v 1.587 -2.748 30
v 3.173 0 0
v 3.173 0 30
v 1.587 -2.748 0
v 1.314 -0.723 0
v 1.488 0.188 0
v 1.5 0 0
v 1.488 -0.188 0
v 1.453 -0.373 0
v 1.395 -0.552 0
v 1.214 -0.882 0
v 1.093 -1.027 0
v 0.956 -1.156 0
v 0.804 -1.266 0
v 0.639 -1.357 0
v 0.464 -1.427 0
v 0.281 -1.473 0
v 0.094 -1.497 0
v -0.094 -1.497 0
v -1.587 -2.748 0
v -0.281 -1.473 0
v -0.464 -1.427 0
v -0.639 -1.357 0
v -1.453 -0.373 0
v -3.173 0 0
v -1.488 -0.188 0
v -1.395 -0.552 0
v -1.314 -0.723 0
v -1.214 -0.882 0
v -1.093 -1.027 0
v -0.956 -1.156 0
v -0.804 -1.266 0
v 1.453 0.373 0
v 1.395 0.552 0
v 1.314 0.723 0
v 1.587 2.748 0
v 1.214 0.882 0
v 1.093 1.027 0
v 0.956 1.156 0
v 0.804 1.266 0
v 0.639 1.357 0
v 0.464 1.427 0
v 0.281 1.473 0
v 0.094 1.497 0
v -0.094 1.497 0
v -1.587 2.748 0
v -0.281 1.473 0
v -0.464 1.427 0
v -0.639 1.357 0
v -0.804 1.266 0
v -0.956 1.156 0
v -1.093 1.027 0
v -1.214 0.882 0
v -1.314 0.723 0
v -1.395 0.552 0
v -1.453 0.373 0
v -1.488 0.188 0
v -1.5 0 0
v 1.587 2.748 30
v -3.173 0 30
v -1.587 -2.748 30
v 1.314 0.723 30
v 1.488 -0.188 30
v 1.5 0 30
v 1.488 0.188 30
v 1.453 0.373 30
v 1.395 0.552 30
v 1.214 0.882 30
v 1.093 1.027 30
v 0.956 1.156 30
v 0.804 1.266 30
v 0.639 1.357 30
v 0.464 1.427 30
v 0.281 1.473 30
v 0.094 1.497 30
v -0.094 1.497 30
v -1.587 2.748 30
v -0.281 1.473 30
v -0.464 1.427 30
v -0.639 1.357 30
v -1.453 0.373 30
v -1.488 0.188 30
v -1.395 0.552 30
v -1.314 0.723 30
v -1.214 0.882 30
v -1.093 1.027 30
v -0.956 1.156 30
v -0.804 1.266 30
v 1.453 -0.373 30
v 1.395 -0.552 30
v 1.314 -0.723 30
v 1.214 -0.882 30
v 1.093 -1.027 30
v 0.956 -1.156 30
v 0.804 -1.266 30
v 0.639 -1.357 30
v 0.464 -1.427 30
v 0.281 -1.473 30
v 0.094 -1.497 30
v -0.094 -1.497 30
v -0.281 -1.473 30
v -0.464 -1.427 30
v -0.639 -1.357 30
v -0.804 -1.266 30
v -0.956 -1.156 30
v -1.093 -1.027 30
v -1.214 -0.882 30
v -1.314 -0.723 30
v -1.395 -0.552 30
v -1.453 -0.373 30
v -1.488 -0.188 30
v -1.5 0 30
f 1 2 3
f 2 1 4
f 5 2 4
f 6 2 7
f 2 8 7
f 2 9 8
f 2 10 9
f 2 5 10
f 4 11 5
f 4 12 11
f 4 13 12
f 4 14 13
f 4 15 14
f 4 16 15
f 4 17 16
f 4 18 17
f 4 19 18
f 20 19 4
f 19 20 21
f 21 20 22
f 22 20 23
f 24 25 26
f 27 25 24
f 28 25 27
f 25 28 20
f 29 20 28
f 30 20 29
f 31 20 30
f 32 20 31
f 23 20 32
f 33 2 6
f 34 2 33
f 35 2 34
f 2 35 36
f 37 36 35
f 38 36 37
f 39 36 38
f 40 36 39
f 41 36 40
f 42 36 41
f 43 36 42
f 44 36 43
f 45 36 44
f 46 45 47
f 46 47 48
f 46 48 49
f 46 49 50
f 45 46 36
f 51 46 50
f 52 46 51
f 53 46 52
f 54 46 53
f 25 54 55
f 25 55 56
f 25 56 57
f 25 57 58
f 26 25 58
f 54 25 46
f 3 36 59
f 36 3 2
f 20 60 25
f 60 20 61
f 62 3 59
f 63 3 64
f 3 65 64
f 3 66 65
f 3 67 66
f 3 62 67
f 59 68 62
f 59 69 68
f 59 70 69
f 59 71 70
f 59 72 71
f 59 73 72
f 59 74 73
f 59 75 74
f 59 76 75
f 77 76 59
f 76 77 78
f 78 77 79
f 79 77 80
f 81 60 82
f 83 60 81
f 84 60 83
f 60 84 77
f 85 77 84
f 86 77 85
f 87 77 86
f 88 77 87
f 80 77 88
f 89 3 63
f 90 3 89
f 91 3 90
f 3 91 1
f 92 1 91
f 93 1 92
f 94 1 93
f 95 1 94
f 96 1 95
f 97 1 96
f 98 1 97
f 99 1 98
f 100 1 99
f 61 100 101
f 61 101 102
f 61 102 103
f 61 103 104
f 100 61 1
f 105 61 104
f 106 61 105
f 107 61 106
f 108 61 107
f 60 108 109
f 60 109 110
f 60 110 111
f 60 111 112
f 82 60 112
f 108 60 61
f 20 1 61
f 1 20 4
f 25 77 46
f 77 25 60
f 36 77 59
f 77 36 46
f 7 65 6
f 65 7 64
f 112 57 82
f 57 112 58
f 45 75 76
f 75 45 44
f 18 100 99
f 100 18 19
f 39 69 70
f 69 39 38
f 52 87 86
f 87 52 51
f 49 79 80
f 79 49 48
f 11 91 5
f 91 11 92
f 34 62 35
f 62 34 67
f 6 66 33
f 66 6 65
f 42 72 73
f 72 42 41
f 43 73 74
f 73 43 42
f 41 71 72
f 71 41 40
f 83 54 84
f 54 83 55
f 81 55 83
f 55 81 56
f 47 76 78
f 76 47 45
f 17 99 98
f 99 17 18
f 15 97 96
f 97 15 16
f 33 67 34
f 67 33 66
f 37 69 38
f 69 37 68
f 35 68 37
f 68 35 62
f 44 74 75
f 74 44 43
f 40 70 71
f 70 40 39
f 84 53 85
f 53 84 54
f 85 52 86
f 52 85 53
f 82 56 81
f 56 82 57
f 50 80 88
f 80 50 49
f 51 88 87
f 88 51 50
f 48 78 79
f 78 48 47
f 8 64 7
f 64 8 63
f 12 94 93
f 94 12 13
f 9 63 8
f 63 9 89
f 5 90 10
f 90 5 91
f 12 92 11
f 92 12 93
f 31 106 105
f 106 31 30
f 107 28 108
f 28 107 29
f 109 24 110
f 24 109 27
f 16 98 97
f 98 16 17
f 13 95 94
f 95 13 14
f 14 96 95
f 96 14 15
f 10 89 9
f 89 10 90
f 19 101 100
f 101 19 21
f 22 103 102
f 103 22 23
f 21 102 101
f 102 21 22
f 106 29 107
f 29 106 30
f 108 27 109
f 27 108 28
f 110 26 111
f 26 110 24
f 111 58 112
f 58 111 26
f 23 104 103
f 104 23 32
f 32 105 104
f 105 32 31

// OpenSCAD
$fn = 50;


difference() {
	union() {
		translate(v = [0, 0, 0]) {
			rotate(a = [0, 0, 0]) {
				translate(v = [0, 0, 0]) {
					rotate(a = [0, 0, 0]) {
						linear_extrude(height = 30) {
							polygon(points = [[3.1735000000, 0.0000000000], [1.5867500000, 2.7483316189], [-1.5867500000, 2.7483316189], [-3.1735000000, 0.0000000000], [-1.5867500000, -2.7483316189], [1.5867500000, -2.7483316189]]);
						}
					}
				}
			}
		}
	}
	union() {
		translate(v = [0, 0, 0]) {
			rotate(a = [0, 0, 0]) {
				cylinder(h = 30, r = 1.5000000000);
			}
		}
	}
}
